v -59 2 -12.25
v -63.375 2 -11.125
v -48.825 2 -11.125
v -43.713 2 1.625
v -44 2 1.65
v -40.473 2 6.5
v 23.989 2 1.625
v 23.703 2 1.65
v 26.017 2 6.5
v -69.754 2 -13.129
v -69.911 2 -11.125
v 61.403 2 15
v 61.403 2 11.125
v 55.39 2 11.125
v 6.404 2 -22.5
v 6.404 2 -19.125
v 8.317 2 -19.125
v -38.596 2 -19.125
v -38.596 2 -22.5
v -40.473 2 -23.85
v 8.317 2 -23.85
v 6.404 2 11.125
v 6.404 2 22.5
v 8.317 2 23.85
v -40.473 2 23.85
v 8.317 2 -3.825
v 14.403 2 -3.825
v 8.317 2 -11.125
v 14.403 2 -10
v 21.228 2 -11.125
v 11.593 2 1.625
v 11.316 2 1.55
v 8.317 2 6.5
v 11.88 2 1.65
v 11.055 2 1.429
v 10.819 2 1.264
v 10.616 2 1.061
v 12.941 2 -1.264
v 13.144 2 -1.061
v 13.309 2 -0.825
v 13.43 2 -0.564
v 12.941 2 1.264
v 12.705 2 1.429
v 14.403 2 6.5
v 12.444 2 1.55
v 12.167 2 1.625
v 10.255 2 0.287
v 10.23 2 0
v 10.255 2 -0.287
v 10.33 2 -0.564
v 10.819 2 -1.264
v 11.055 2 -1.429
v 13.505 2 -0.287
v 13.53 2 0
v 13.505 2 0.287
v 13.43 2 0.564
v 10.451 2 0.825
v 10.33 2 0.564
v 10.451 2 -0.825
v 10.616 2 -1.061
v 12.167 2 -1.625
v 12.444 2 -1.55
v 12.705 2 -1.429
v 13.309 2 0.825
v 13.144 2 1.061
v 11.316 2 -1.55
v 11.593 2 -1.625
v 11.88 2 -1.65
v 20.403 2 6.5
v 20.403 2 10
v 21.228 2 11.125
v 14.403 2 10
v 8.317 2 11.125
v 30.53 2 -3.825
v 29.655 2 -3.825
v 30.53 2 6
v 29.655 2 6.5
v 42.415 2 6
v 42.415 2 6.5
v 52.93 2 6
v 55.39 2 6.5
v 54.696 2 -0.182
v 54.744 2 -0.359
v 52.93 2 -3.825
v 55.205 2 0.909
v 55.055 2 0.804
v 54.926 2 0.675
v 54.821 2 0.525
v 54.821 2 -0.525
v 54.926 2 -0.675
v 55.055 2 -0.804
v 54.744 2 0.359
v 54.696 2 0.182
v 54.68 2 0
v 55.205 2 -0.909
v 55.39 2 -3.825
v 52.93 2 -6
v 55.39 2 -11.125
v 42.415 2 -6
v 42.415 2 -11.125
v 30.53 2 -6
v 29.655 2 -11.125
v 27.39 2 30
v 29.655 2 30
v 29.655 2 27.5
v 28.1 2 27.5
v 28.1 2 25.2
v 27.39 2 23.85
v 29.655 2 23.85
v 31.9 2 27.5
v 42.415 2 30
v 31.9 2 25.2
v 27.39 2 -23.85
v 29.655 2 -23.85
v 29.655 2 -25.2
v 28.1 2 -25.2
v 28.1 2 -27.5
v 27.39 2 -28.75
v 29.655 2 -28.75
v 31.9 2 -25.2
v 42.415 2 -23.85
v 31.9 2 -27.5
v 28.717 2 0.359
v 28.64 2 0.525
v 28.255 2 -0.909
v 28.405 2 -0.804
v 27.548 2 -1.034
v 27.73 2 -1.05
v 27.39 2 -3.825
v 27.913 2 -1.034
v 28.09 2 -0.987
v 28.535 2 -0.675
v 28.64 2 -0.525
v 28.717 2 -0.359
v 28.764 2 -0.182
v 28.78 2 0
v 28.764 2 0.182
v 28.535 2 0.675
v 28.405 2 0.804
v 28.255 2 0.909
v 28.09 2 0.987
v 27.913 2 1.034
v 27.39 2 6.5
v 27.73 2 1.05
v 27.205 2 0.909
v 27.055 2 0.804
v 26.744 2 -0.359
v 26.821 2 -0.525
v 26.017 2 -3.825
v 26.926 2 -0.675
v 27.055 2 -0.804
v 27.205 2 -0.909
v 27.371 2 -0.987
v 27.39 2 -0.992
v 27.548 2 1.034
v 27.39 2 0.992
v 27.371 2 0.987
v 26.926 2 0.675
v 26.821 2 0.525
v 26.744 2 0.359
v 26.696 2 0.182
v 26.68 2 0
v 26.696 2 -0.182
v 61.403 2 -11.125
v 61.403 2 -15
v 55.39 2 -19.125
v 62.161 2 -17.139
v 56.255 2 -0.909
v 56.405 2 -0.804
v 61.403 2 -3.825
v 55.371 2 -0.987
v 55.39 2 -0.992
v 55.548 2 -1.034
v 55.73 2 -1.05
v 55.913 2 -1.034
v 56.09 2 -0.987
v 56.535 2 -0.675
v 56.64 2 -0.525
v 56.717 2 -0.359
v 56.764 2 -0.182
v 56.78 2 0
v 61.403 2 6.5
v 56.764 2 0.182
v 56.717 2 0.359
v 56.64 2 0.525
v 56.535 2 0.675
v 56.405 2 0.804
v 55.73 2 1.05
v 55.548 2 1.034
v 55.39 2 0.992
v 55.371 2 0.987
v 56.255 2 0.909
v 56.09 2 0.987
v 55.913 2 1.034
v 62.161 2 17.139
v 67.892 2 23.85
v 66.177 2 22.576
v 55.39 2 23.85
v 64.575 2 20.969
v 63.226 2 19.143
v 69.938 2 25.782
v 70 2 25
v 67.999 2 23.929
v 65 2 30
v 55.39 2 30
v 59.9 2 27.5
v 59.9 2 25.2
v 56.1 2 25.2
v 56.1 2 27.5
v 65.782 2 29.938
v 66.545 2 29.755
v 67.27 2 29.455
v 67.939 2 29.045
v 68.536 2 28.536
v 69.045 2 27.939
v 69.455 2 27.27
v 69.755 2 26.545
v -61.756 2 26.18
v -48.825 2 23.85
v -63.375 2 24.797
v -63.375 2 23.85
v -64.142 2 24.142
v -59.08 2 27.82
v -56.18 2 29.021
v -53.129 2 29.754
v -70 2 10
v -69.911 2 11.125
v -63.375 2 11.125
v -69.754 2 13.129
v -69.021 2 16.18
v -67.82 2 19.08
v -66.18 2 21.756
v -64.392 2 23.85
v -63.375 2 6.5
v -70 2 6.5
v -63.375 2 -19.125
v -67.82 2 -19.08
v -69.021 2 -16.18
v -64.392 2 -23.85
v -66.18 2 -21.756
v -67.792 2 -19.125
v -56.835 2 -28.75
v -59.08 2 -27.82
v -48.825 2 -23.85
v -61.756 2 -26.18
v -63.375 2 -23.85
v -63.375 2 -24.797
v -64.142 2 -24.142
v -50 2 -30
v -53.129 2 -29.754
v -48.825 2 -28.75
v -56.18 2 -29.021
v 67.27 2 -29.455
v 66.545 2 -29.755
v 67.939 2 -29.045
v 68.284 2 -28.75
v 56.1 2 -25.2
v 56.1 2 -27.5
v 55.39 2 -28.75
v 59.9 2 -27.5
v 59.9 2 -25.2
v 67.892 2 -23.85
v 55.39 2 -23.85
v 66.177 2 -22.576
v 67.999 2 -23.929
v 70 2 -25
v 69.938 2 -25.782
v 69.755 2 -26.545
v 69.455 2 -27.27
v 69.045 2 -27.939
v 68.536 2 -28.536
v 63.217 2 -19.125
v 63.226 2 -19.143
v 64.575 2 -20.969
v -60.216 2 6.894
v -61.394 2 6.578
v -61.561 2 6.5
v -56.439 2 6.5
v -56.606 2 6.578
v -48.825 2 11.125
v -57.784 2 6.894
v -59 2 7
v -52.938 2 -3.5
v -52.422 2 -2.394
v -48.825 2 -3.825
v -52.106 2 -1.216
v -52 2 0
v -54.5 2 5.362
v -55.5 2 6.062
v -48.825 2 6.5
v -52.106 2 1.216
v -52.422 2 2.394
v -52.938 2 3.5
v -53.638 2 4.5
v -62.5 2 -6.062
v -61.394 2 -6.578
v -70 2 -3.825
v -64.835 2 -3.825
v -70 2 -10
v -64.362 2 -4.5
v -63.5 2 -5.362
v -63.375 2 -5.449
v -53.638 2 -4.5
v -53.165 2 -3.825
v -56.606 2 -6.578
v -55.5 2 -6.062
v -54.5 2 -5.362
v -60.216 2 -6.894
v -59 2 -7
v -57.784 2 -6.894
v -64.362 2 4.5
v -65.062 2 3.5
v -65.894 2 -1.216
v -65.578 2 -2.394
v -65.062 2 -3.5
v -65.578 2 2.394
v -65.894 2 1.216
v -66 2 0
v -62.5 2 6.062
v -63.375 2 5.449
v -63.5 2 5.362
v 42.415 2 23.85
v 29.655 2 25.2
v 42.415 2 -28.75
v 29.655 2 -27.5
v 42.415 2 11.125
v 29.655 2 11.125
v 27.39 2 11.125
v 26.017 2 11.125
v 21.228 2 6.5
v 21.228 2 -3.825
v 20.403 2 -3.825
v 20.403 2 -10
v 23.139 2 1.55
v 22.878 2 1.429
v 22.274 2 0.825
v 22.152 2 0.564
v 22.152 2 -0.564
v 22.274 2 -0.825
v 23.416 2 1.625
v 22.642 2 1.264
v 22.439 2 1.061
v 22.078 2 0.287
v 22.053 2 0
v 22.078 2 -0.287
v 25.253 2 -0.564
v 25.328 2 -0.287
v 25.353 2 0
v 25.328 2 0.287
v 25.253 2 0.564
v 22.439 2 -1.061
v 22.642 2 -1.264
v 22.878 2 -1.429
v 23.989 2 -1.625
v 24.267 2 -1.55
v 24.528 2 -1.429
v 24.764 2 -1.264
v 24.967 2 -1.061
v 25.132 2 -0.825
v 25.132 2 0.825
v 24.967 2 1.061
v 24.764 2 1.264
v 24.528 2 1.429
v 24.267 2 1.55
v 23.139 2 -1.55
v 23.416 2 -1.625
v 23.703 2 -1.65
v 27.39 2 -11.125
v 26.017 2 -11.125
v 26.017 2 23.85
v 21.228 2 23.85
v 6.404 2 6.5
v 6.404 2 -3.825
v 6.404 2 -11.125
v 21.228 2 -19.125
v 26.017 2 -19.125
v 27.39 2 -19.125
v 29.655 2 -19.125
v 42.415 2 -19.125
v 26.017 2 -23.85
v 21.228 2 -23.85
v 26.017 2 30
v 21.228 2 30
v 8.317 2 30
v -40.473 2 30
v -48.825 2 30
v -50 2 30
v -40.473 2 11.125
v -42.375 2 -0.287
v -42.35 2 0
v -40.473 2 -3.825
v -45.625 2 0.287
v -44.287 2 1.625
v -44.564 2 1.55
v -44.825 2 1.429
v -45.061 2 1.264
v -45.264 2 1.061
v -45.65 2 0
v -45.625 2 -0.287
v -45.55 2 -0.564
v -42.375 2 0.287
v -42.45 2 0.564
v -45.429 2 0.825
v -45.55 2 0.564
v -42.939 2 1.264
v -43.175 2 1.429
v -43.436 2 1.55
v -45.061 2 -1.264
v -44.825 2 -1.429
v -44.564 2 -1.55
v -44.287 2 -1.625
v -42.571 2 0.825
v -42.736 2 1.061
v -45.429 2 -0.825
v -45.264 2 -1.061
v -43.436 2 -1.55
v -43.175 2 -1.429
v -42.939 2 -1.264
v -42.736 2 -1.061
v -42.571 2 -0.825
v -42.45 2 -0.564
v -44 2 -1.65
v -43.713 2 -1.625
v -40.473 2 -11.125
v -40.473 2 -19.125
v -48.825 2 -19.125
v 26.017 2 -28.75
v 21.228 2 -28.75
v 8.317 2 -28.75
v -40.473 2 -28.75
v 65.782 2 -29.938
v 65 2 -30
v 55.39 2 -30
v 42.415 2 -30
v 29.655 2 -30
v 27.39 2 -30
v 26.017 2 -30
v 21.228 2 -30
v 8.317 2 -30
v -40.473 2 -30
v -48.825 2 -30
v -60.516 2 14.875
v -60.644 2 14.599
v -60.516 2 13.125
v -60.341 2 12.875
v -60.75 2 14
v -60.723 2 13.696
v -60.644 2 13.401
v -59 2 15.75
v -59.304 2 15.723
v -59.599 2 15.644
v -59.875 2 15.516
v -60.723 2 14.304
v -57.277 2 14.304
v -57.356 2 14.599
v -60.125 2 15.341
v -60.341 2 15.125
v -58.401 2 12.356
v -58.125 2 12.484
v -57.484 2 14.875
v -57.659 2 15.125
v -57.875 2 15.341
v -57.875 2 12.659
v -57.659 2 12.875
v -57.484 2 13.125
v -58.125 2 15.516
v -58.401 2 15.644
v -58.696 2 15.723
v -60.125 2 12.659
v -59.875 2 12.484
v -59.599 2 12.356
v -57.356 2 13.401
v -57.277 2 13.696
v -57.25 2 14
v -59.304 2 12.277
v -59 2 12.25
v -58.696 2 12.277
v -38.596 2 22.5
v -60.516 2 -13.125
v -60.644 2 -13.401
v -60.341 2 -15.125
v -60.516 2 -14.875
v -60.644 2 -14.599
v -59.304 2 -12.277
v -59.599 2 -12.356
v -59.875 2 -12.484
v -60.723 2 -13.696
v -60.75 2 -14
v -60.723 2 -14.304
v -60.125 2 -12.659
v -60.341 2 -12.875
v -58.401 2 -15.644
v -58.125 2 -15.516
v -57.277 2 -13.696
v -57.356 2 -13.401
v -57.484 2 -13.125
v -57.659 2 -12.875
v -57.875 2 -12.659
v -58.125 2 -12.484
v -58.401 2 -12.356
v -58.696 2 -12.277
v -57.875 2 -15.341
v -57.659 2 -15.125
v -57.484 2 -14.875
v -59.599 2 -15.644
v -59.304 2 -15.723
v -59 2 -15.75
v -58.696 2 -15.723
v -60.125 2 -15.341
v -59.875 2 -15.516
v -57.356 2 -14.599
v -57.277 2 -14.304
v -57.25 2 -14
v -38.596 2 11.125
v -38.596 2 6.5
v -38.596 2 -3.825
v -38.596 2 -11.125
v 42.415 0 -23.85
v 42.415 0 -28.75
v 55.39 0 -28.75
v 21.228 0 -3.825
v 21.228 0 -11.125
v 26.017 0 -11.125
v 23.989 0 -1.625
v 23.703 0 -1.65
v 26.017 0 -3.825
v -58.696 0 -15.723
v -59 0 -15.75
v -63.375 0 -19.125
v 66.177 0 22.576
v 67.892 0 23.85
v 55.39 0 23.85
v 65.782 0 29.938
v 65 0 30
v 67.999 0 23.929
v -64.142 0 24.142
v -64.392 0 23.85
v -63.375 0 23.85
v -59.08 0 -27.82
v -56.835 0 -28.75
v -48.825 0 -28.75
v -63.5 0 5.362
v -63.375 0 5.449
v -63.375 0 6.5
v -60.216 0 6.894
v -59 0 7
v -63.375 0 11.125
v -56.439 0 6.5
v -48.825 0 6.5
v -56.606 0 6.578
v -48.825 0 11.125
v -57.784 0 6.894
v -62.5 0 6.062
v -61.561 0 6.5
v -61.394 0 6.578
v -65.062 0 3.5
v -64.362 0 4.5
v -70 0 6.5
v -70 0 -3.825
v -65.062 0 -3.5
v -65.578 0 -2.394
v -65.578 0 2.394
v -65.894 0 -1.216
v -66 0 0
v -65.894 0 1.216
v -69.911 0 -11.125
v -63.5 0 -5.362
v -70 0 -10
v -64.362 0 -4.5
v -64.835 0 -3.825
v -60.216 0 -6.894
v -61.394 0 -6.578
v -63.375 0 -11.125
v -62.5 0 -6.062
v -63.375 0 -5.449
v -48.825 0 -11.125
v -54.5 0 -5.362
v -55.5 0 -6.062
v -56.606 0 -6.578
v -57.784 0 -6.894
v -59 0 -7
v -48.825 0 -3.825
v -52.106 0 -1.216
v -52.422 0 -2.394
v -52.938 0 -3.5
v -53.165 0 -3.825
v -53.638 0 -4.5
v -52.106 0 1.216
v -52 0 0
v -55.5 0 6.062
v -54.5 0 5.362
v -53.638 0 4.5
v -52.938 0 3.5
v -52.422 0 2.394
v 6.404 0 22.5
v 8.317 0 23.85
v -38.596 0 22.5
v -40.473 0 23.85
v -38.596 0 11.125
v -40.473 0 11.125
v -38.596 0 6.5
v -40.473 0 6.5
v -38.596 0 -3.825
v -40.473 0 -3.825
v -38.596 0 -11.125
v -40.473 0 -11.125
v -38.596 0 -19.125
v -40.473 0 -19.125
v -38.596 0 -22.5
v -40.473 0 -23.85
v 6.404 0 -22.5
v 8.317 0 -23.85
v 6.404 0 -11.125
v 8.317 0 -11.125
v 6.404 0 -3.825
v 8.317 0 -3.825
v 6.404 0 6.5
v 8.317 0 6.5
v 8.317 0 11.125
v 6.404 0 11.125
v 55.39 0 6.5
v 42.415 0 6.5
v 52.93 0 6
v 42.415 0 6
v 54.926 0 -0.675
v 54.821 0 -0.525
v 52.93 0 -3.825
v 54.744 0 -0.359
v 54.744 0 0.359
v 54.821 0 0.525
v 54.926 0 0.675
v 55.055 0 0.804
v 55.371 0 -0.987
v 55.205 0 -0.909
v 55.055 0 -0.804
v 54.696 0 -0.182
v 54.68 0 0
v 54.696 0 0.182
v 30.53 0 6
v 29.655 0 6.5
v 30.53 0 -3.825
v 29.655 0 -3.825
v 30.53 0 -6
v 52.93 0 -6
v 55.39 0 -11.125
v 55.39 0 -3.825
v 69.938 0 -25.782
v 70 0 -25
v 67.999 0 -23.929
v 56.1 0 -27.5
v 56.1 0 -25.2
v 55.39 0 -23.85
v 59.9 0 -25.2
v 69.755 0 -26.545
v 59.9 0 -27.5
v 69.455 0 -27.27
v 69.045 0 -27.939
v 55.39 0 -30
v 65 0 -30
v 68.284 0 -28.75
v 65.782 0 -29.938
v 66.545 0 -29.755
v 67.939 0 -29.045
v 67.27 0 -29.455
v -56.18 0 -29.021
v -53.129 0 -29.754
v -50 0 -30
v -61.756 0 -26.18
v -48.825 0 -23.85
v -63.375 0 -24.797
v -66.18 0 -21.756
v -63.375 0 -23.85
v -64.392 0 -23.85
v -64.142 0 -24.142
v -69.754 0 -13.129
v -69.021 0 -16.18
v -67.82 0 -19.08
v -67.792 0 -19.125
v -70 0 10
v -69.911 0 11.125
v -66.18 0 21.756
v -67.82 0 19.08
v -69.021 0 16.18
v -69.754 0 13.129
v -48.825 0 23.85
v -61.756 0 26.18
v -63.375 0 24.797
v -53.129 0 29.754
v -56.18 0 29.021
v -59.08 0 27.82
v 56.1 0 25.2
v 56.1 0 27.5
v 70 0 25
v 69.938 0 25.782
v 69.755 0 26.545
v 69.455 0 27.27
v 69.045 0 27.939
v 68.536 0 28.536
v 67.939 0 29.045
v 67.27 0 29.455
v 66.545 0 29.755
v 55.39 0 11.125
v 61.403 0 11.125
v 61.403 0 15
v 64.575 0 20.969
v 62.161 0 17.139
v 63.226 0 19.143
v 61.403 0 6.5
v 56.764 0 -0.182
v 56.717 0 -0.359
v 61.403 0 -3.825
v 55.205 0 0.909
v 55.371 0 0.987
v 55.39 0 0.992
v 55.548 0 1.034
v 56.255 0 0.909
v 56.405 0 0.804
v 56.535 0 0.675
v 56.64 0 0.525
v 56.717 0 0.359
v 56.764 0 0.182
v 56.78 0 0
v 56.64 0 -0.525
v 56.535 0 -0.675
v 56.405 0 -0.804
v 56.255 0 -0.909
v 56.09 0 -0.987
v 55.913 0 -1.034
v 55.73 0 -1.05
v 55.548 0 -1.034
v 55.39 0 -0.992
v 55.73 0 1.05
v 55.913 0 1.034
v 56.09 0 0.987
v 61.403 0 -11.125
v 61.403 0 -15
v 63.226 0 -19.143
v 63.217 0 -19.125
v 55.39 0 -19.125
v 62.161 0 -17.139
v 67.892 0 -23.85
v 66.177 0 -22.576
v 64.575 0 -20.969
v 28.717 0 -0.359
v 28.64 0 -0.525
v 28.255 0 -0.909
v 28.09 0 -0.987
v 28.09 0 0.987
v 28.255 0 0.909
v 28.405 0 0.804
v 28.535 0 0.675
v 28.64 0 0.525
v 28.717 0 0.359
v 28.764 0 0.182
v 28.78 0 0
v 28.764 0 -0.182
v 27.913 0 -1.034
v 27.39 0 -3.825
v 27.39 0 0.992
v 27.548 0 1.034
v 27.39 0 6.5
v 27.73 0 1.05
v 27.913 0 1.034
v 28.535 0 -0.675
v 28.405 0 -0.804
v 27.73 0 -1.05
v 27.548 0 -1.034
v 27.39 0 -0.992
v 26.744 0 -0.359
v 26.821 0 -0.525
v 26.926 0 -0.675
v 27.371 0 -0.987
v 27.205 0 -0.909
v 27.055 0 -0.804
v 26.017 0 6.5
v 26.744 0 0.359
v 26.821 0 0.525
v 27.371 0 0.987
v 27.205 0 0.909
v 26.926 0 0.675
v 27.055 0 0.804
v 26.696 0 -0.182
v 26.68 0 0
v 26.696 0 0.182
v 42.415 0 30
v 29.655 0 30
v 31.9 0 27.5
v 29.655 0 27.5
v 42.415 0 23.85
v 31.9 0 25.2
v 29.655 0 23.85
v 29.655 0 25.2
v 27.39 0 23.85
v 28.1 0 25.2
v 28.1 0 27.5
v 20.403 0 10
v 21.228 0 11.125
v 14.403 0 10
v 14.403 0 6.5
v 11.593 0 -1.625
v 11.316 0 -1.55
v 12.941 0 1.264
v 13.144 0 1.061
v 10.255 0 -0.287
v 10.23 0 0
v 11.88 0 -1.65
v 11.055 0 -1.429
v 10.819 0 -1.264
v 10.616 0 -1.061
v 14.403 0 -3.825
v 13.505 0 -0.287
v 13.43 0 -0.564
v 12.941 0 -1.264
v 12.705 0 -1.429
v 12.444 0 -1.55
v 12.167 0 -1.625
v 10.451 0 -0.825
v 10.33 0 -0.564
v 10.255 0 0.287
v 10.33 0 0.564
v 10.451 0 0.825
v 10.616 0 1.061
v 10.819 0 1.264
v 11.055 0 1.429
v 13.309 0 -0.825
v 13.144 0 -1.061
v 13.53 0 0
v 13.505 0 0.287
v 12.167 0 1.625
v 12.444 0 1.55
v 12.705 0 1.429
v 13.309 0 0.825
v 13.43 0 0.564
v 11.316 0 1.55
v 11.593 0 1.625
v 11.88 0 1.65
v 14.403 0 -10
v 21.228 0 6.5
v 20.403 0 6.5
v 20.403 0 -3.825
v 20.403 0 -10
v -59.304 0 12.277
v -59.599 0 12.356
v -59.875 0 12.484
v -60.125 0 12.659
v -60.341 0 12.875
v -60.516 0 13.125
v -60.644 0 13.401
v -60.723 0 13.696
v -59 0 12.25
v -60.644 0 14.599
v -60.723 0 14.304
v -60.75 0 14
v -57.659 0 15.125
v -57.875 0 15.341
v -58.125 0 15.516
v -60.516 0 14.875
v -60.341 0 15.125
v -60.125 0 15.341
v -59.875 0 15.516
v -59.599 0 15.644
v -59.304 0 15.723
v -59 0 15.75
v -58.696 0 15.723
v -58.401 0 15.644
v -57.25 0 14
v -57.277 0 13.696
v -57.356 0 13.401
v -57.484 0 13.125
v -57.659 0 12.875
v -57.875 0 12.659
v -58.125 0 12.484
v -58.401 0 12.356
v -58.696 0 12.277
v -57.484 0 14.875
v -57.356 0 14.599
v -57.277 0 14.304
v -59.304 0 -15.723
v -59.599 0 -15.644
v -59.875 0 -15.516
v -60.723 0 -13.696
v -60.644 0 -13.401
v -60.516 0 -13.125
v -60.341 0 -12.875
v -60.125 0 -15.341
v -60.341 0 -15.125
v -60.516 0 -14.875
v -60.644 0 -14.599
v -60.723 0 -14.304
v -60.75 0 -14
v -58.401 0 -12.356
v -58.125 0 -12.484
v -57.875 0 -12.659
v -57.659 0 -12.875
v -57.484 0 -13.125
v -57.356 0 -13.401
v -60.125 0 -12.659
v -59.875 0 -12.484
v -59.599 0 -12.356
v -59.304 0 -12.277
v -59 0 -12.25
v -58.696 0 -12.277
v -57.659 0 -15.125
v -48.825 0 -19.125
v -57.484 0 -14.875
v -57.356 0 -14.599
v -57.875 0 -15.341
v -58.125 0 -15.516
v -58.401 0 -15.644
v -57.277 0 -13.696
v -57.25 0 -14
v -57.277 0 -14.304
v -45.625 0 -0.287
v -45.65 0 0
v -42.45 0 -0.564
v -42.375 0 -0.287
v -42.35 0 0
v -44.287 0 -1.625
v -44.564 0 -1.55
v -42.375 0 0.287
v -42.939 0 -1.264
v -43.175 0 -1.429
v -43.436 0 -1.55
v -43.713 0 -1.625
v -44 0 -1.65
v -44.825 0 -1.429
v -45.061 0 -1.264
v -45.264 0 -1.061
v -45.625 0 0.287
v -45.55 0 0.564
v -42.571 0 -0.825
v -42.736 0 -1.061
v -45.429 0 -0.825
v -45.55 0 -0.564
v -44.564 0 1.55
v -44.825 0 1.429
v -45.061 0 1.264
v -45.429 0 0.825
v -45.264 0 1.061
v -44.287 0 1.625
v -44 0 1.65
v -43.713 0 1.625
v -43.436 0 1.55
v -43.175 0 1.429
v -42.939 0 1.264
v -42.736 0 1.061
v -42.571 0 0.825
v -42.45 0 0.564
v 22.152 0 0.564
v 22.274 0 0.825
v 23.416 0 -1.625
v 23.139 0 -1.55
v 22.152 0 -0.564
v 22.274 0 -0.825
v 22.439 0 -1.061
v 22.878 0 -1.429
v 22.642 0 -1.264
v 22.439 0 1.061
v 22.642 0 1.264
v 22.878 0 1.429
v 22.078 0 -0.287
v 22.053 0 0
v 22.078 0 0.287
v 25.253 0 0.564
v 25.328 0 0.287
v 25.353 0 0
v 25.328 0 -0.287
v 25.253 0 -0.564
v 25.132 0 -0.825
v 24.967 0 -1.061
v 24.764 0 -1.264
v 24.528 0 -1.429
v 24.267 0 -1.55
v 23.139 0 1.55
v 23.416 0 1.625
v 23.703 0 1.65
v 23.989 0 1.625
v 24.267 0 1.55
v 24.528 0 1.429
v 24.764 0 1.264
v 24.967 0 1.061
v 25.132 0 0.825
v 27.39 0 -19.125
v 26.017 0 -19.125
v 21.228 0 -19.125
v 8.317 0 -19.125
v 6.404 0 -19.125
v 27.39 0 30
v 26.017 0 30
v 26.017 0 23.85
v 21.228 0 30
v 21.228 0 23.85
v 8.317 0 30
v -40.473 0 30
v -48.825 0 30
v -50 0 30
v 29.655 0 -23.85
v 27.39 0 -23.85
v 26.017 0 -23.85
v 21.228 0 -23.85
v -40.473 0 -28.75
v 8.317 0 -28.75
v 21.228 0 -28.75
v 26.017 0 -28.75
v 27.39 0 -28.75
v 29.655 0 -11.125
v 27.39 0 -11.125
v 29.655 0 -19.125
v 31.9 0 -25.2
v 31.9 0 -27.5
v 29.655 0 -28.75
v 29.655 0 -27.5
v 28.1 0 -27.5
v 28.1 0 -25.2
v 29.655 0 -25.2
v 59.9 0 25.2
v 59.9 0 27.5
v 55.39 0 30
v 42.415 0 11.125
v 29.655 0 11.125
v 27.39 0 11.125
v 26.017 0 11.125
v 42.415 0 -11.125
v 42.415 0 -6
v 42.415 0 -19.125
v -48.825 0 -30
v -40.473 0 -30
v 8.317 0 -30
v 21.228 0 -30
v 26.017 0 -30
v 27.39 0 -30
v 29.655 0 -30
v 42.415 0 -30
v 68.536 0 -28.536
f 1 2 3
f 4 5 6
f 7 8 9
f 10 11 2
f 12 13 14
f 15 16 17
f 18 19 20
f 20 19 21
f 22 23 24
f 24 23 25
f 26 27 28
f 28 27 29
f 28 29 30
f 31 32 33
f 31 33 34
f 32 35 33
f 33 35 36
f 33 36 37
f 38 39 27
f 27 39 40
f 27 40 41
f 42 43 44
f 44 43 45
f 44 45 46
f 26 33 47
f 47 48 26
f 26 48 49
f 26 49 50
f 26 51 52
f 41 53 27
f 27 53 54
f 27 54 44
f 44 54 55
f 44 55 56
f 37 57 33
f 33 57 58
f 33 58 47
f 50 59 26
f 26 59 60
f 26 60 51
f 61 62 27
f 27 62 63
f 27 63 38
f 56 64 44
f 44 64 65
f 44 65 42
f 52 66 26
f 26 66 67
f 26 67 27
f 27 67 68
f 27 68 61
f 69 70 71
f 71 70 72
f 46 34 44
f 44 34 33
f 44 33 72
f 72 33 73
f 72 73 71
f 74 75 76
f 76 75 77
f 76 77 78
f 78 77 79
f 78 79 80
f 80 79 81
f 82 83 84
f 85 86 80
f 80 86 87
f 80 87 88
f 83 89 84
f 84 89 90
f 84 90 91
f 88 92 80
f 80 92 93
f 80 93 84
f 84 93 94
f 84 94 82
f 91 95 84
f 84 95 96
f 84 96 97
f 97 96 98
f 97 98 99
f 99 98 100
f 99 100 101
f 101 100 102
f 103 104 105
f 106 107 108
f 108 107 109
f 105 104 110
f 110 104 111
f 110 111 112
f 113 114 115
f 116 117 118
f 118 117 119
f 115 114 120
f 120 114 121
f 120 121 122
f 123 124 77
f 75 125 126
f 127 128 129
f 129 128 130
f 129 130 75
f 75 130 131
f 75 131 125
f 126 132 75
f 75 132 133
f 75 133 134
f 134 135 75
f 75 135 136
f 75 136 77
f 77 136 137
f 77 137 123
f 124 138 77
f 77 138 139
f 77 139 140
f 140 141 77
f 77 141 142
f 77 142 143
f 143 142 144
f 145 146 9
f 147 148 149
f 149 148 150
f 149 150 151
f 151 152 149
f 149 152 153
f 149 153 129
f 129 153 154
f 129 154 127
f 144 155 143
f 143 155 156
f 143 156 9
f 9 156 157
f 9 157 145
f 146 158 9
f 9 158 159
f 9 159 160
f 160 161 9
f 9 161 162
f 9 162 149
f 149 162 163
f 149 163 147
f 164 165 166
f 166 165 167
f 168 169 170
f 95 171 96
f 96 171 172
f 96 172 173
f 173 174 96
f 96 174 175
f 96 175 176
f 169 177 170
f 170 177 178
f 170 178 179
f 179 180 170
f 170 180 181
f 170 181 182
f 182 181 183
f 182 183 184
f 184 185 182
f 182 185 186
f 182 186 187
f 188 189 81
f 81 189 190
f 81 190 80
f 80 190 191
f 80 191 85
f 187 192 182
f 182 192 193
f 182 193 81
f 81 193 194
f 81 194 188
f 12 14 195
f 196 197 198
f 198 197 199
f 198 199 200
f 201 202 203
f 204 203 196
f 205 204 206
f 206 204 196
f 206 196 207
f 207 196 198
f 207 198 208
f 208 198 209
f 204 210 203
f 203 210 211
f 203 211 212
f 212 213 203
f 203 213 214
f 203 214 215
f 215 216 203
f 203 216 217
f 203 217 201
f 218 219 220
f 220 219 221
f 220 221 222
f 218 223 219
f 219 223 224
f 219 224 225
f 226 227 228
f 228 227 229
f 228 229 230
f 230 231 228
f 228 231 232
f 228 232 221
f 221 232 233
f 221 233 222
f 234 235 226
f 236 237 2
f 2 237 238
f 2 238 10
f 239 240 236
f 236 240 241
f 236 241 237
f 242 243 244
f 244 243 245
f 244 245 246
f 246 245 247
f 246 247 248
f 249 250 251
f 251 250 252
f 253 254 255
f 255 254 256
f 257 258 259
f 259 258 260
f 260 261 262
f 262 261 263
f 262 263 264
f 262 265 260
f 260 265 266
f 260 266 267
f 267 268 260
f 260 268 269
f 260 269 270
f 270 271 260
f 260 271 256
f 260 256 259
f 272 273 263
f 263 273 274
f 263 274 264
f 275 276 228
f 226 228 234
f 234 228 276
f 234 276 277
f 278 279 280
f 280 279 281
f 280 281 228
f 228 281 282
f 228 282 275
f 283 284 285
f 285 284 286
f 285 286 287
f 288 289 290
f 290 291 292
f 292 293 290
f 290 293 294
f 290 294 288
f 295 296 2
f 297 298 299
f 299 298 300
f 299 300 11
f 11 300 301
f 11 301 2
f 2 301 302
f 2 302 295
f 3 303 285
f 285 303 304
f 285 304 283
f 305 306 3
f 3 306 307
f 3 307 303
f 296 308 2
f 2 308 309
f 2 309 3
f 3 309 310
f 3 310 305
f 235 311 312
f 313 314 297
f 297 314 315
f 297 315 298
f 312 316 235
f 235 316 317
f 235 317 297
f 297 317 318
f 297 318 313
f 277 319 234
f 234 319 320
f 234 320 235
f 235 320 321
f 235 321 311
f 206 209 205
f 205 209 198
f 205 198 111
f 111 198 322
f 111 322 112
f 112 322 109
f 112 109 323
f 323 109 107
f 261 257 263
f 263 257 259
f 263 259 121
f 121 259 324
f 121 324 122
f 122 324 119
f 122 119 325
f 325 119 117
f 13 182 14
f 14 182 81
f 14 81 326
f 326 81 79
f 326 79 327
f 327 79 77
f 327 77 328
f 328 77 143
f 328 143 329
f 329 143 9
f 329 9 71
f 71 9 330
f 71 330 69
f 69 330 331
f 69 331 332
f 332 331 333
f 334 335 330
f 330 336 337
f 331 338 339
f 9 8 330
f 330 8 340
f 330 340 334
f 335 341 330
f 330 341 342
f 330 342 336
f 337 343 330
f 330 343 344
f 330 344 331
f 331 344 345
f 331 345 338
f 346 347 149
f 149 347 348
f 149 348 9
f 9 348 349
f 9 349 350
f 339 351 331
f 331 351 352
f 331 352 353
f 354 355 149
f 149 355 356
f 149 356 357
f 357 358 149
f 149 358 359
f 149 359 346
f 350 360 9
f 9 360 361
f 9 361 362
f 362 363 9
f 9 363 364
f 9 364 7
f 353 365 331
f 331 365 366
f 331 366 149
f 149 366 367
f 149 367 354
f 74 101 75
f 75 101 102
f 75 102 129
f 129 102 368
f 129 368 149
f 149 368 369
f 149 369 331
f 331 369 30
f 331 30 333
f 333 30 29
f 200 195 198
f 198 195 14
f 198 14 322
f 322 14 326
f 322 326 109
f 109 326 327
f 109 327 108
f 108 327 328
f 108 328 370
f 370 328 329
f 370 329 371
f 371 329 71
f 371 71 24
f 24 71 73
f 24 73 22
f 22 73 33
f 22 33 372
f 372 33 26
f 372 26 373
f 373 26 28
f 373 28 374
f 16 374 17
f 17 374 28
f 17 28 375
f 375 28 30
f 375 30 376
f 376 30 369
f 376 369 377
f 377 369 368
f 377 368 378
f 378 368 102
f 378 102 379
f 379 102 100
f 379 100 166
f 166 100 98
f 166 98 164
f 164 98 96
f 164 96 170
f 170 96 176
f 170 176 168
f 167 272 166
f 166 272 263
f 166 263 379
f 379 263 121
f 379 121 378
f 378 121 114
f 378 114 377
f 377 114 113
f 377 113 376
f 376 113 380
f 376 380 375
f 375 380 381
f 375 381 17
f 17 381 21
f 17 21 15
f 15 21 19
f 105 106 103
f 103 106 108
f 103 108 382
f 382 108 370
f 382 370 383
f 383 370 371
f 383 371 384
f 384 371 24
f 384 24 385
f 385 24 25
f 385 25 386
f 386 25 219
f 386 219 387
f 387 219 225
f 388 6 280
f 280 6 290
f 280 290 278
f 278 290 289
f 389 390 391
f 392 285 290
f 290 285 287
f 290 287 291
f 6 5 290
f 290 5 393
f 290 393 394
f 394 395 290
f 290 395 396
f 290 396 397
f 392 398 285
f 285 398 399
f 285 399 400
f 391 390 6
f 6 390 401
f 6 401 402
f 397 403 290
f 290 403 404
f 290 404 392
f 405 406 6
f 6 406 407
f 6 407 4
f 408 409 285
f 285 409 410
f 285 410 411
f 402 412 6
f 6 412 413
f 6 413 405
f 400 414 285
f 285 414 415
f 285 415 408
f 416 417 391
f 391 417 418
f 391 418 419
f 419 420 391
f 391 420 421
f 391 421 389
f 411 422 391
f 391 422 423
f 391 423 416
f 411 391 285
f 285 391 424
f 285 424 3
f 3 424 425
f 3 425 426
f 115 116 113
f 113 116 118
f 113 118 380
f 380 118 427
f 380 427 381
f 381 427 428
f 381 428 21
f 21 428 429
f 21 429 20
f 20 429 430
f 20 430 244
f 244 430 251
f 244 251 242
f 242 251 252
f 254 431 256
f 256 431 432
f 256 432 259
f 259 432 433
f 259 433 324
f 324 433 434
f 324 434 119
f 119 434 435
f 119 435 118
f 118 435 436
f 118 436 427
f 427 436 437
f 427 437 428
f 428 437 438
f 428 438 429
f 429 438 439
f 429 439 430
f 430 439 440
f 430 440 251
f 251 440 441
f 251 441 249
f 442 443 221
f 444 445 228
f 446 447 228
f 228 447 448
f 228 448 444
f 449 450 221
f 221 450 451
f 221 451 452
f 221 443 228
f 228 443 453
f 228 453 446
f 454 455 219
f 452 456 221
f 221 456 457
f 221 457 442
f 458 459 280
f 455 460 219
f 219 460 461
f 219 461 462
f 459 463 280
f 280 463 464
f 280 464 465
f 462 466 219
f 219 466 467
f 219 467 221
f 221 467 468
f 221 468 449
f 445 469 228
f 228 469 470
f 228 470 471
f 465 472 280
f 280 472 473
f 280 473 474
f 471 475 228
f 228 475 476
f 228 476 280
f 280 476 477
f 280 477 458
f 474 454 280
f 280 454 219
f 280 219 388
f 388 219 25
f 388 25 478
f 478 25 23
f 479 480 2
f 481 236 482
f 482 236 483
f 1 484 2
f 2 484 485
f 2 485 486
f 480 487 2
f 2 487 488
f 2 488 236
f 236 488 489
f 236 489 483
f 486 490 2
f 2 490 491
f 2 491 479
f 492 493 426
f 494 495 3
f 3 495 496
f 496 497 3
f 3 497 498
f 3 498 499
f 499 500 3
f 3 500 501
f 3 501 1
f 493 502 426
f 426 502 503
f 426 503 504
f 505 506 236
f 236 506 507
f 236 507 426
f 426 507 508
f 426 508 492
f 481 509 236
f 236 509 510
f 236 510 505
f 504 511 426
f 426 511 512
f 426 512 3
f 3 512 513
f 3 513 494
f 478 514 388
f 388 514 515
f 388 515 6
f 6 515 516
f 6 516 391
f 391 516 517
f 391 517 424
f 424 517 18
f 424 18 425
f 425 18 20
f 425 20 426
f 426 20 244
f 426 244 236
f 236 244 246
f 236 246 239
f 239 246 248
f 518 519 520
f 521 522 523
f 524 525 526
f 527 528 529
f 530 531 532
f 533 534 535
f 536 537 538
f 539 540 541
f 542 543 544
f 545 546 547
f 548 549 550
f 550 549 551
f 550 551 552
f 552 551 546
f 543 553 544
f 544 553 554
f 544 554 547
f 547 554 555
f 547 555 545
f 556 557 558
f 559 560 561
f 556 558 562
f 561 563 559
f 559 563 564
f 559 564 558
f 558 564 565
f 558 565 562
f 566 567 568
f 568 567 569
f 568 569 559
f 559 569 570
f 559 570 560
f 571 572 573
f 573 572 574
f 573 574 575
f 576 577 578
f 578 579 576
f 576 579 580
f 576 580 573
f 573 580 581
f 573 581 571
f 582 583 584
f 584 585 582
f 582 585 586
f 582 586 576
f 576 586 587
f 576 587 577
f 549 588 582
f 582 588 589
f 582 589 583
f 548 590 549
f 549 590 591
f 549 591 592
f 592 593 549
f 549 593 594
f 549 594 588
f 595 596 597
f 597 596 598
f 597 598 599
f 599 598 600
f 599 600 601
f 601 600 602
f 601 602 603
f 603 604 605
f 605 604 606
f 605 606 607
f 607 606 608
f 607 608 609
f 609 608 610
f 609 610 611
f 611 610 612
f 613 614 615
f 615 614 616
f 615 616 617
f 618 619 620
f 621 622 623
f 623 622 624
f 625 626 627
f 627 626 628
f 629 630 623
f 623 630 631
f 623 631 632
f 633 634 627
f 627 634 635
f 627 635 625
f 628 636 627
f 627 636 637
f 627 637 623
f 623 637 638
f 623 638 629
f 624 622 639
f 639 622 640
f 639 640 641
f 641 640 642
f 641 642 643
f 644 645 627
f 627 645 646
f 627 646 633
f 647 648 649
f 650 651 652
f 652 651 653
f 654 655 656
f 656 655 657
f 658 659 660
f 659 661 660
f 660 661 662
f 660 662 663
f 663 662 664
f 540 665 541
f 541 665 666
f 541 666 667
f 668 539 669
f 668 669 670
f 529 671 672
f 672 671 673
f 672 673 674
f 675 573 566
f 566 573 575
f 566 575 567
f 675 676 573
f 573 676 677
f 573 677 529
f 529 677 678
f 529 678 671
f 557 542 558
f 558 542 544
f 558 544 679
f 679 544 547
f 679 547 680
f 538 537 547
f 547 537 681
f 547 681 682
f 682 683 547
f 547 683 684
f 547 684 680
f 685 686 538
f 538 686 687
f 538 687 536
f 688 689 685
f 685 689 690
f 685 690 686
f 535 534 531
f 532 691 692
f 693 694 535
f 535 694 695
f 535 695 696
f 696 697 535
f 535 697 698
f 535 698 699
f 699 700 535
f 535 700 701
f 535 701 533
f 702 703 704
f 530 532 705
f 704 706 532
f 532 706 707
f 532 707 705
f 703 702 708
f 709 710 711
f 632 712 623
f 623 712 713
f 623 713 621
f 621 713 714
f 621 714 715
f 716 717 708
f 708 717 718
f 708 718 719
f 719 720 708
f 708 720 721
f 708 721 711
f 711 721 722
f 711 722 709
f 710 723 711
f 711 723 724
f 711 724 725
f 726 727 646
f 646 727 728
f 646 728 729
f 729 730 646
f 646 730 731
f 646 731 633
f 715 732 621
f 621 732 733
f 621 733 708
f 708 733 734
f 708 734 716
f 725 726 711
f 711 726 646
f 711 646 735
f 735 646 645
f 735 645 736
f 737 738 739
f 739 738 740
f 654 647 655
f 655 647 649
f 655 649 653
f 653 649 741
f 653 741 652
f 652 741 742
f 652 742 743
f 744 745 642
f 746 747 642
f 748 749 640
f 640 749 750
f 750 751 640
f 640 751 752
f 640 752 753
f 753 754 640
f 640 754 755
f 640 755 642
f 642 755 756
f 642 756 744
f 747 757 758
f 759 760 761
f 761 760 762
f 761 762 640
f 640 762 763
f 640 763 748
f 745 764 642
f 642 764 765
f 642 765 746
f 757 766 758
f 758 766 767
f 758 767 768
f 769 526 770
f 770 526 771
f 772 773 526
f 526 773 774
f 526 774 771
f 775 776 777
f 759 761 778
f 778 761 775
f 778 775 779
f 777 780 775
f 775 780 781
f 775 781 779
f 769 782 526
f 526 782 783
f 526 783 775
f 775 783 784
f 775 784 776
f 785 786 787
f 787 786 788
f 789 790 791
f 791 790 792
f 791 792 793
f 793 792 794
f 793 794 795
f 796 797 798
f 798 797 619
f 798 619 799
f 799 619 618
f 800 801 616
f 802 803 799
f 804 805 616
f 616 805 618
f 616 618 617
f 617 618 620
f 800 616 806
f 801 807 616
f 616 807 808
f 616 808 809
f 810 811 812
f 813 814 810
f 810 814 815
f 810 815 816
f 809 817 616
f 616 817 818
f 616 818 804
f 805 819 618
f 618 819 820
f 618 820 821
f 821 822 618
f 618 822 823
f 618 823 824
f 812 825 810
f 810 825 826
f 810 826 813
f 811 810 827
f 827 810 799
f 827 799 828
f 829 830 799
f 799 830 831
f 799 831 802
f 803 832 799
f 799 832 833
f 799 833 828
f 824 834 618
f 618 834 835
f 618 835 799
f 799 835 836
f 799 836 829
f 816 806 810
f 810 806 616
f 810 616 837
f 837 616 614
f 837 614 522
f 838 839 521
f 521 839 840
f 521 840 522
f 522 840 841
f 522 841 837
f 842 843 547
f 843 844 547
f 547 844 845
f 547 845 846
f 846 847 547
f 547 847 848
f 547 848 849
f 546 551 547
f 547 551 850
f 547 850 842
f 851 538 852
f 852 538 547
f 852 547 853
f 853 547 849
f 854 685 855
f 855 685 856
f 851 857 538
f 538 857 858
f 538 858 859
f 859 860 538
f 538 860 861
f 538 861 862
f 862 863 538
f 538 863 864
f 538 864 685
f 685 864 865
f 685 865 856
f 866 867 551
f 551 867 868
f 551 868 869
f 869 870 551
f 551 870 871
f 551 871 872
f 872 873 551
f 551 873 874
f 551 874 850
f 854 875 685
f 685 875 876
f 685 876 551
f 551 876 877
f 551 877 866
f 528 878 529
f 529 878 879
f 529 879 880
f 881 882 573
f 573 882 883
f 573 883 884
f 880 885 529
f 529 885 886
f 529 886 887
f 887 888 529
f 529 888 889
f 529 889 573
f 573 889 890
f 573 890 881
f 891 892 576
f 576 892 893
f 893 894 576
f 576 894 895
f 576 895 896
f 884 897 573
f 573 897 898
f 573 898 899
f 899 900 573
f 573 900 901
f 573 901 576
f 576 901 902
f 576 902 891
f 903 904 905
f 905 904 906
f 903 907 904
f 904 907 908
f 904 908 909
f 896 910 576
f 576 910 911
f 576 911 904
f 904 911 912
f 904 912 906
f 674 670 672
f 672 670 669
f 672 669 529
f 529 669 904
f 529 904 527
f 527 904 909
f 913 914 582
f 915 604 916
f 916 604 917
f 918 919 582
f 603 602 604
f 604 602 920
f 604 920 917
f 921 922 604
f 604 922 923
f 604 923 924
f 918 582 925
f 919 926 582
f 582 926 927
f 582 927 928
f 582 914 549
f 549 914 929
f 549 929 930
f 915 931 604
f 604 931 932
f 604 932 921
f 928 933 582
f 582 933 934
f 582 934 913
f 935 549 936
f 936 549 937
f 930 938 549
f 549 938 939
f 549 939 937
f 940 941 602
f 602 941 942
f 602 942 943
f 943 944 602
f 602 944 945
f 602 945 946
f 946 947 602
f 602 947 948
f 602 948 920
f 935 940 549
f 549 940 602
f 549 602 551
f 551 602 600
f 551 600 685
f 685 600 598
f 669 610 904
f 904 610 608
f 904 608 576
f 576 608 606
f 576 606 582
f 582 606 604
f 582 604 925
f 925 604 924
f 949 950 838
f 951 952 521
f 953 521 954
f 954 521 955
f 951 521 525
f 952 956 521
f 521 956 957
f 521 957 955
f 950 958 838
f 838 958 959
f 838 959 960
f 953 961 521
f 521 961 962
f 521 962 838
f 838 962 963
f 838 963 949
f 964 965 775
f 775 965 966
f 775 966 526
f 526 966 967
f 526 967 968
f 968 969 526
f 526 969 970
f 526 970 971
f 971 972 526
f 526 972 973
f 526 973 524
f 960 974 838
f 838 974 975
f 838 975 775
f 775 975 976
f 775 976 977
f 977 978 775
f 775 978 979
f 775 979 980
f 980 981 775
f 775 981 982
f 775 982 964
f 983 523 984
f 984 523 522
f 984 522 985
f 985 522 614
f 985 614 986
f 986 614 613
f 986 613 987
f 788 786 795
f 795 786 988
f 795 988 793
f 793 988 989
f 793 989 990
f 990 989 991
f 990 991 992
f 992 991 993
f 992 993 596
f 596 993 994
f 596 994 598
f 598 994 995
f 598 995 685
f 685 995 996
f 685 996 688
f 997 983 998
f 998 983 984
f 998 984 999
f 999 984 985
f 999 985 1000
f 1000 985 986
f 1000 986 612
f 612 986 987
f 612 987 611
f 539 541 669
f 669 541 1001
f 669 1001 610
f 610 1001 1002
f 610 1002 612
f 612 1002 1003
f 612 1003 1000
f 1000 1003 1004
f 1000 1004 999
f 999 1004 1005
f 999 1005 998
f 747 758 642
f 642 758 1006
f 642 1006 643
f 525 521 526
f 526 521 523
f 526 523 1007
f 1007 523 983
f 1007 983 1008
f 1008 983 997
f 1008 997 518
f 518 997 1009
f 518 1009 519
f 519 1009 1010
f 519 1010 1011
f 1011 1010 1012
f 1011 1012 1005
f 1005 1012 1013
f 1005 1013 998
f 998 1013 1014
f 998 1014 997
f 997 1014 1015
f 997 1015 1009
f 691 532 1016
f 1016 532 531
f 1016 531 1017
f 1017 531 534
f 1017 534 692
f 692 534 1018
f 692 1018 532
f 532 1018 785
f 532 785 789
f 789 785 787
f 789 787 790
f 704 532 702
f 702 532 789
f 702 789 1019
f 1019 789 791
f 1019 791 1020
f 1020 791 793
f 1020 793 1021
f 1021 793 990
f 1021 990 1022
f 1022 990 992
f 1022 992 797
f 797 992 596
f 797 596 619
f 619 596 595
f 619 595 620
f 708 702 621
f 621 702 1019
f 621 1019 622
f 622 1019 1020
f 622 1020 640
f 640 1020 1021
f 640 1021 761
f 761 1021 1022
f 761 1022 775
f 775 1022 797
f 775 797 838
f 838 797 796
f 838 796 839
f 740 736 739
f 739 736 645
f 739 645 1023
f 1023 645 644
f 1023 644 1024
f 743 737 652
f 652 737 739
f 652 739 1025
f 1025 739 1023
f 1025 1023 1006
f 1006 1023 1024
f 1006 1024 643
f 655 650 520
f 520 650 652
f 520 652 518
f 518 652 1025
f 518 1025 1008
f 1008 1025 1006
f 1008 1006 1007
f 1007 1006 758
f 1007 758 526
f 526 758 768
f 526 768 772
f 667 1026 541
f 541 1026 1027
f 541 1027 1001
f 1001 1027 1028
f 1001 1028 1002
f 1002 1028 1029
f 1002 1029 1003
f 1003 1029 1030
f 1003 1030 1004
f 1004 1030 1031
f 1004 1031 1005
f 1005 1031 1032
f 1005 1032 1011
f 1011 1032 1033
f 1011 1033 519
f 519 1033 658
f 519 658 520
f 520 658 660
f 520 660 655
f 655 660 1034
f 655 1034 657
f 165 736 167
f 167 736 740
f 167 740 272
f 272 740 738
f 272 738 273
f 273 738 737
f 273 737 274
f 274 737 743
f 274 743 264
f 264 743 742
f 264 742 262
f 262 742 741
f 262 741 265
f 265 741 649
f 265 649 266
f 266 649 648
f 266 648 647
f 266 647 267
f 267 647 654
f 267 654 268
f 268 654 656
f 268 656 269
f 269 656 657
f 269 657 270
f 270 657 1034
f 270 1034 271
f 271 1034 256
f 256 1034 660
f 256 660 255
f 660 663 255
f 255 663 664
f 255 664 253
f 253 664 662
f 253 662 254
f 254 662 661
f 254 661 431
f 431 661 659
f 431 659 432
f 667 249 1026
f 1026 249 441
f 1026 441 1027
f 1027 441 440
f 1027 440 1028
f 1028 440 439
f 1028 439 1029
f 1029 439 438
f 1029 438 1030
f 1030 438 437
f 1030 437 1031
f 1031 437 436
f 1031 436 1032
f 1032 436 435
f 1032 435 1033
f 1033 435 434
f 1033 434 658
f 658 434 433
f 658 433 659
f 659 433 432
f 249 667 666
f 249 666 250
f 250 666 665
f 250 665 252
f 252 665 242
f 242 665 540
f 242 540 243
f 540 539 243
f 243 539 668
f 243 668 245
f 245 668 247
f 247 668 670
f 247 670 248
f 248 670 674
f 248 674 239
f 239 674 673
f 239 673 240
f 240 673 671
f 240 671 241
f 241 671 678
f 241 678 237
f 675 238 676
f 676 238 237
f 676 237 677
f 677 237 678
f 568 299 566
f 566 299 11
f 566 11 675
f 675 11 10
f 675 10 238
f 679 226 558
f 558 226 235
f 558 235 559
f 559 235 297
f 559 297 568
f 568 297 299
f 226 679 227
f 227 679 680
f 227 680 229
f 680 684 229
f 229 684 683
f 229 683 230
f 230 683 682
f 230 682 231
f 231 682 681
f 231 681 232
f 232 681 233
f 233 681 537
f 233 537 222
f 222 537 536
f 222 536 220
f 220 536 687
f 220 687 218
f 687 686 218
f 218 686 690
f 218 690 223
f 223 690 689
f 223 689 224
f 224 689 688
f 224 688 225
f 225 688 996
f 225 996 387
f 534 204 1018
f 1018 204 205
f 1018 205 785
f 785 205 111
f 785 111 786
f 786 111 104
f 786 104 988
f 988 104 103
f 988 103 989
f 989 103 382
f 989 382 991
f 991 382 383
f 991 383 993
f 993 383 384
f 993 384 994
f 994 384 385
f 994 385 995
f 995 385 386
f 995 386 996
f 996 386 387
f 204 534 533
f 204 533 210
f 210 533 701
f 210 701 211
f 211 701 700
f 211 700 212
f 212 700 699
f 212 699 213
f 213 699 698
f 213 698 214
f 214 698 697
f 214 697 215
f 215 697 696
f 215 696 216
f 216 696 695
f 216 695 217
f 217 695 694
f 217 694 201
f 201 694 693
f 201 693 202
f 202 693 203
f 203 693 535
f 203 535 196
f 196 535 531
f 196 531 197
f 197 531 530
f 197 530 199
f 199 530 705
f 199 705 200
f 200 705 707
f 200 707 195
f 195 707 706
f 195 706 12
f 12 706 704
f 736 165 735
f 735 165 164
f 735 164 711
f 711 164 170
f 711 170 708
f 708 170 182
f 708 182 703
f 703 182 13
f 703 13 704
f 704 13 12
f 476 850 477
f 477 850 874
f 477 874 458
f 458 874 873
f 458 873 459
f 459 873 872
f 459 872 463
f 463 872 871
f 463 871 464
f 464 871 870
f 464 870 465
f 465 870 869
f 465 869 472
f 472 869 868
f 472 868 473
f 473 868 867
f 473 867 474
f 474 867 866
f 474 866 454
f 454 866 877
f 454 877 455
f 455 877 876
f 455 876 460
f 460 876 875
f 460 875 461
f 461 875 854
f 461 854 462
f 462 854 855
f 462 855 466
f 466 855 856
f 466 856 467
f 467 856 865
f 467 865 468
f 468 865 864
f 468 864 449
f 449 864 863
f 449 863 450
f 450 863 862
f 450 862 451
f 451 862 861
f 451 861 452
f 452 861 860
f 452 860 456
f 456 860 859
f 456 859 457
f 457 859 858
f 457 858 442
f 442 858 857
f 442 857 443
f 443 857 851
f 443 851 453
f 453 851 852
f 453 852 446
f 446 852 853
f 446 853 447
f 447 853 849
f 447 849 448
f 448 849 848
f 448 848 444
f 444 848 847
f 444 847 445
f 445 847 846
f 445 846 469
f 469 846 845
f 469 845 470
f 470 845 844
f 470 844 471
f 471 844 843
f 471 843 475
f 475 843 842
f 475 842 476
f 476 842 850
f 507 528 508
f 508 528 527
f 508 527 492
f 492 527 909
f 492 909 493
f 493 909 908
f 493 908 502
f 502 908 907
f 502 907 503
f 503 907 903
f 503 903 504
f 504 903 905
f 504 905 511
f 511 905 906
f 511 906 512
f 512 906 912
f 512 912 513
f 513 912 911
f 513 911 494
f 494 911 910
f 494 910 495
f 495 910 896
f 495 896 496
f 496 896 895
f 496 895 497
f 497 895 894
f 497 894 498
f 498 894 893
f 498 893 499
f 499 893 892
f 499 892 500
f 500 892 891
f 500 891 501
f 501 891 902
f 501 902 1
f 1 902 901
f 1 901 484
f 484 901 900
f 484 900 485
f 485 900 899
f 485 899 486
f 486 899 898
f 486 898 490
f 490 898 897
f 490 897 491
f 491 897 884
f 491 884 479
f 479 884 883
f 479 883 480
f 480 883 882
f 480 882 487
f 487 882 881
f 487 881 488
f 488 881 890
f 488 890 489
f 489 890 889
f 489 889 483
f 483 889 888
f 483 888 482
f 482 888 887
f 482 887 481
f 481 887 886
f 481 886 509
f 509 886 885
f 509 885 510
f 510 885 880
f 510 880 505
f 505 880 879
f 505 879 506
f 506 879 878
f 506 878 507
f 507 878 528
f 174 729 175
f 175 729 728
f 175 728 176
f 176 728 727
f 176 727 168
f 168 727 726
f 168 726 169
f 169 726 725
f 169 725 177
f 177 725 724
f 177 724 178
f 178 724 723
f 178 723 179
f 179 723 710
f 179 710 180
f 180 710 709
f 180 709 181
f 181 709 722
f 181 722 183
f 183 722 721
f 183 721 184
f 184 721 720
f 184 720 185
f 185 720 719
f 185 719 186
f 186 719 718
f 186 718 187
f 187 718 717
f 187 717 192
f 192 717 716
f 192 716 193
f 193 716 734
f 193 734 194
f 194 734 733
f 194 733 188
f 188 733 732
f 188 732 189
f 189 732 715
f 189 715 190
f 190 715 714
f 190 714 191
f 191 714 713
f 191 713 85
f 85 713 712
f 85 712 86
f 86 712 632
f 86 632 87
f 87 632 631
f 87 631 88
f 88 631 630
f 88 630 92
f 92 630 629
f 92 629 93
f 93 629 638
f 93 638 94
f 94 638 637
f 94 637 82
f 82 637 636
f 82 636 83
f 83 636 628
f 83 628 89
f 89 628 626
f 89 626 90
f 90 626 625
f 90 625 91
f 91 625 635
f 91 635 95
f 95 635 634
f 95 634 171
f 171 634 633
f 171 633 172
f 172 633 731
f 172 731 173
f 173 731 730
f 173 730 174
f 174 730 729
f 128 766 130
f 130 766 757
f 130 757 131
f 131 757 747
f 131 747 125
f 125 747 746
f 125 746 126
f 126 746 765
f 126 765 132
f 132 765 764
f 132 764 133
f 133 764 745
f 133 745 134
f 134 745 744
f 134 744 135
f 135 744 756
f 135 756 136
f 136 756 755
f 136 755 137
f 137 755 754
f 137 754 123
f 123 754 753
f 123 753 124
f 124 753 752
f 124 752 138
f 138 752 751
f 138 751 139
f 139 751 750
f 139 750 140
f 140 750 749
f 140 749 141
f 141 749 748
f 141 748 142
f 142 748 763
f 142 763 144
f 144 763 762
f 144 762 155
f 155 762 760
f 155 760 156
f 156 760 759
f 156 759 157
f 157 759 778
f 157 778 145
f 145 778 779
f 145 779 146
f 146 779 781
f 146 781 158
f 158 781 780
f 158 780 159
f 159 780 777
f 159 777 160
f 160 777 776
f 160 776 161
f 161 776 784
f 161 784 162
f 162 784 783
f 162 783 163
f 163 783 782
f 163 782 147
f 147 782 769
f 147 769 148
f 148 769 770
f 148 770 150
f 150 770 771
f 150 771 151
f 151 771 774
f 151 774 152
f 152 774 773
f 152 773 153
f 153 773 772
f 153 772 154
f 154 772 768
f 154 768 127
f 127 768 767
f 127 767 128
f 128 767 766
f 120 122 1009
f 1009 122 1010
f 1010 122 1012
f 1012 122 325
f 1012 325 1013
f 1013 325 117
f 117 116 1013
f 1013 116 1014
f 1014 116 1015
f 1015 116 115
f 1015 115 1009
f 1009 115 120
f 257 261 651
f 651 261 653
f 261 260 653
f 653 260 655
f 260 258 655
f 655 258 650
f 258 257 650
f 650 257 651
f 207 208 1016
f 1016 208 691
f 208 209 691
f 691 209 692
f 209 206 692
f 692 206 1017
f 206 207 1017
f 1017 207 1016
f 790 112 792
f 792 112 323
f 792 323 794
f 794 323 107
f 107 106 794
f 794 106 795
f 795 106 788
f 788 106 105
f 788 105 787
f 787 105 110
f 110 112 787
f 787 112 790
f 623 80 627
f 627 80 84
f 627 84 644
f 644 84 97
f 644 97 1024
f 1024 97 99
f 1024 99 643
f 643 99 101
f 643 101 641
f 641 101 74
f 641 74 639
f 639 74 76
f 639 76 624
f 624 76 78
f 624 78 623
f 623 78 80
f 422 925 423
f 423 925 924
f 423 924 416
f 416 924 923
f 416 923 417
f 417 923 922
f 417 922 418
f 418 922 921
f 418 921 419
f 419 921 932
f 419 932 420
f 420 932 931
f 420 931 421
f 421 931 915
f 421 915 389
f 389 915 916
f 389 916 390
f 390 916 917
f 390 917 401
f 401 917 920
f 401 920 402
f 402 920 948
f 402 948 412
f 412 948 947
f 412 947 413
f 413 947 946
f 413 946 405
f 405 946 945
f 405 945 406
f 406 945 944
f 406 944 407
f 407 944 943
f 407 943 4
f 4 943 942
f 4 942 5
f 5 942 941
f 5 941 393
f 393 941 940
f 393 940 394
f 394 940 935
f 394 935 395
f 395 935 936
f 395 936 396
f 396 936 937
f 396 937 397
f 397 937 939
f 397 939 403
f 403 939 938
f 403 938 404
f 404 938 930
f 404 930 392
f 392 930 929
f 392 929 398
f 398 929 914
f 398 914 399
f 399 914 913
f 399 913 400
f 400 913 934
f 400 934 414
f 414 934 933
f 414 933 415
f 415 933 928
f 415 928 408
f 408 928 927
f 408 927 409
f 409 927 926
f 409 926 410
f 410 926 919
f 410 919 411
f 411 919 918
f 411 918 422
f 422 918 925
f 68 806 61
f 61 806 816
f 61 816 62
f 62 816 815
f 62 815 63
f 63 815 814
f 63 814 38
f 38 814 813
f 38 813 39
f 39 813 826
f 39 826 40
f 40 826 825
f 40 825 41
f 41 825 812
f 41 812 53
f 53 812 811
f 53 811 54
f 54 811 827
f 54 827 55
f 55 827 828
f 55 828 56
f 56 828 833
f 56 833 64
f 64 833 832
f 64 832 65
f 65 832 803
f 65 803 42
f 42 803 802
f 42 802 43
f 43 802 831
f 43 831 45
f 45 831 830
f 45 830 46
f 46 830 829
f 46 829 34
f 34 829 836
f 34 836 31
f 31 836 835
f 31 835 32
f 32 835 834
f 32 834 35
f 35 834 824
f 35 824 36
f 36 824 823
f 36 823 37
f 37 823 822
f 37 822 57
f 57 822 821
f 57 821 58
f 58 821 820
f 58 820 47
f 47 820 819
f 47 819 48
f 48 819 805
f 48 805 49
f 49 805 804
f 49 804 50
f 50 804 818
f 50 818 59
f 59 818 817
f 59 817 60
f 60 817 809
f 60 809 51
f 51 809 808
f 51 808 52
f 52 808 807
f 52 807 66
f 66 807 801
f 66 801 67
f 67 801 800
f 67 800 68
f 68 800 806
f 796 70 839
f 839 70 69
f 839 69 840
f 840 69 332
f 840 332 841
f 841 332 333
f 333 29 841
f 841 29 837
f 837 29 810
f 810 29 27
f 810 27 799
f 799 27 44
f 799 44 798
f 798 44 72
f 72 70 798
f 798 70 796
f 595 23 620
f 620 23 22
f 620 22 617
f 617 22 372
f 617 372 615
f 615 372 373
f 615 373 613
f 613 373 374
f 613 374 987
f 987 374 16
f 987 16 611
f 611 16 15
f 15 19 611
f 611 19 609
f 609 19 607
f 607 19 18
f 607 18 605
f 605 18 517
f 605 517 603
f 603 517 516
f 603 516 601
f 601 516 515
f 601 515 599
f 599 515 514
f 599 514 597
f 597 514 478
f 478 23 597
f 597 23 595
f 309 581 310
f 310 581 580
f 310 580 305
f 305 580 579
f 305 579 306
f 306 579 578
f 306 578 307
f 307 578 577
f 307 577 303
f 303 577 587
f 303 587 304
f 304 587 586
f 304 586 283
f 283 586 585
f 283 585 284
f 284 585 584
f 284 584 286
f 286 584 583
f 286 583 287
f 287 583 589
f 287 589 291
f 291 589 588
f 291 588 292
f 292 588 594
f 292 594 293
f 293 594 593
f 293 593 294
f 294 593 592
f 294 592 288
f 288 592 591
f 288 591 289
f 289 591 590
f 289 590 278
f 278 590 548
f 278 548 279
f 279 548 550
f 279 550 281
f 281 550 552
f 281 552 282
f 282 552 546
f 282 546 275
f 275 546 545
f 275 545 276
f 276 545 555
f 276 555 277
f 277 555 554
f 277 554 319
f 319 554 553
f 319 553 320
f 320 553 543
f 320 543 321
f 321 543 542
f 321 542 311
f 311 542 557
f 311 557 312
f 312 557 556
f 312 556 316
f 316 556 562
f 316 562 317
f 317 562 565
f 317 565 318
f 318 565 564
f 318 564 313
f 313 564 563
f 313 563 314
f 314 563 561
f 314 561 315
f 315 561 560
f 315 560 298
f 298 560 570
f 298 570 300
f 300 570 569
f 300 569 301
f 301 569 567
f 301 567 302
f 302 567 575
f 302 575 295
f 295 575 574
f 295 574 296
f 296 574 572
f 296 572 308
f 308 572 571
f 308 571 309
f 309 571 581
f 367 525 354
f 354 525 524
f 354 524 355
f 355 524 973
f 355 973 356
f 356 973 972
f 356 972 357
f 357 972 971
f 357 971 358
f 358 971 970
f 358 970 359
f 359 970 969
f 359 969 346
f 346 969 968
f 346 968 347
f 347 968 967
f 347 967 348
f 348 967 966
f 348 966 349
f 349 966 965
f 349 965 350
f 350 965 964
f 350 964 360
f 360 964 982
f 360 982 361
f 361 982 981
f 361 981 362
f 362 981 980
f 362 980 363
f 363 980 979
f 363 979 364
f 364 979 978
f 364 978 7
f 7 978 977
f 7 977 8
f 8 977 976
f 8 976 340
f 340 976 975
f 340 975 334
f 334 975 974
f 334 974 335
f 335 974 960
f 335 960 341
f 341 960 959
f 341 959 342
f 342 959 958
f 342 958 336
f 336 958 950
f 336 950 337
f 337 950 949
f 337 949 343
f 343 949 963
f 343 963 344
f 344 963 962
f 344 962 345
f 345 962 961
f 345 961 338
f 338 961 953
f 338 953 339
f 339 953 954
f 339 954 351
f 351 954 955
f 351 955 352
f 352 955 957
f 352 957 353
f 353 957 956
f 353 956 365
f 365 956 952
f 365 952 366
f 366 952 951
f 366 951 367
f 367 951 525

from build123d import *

# Parameters (mm, degrees)
CROQUIS1_R              = 1.75
CROQUIS1_R_2            = 1.05
CROQUIS1_R_3            = 1.65
CROQUIS1_R_4            = 7
CROQUIS1_W              = 22.4
CROQUIS1_H              = 12
CROQUIS1_W_2            = 3.8
CROQUIS1_H_2            = 2.3
CROQUIS1_W_3            = 6
CROQUIS1_H_3            = 20
CROQUIS1_W_4            = 45
CROQUIS1_H_4            = 45
SALIENTE_EXTRUIR1_DEPTH = 2


with BuildPart() as part:
    # Croquis1 → Saliente-Extruir1 (new body)
    with BuildSketch(Plane(origin=(0, 0, 0), x_dir=(1, 0, 0), z_dir=(0, 1, 0))):
        with BuildLine():
            Line((-50, -30), (65, -30))
            ThreePointArc((65, -30), (68.535533906, -28.535533906), (70, -25))
            ThreePointArc((70, -25), (64.574669497, -20.968704233), (61.402899266, -15))
            Line((61.402899266, -15), (61.402899266, 15))
            ThreePointArc((61.402899266, 15), (64.574669497, 20.968704233), (70, 25))
            ThreePointArc((70, 25), (68.535533906, 28.535533906), (65, 30))
            Line((65, 30), (-50, 30))
            ThreePointArc((-50, 30), (-64.142135624, 24.142135624), (-70, 10))
            Line((-70, 10), (-70, -10))
            ThreePointArc((-70, -10), (-64.142135624, -24.142135624), (-50, -30))
        make_face()
        with Locations(Location((-59, -14, 0), (0, 0, 270))):
            Circle(CROQUIS1_R, mode=Mode.SUBTRACT)
        with Locations(Location((-59, 14, 0), (0, 0, 90))):
            Circle(CROQUIS1_R, mode=Mode.SUBTRACT)
        with Locations(Location((55.730399266, 0, 0), (0, 0, 270))):
            Circle(CROQUIS1_R_2, mode=Mode.SUBTRACT)
        with Locations(Location((27.730399266, 0, 0), (0, 0, 270))):
            Circle(CROQUIS1_R_2, mode=Mode.SUBTRACT)
        with Locations(Location((-44, 0, 0), (0, 0, 270))):
            Circle(CROQUIS1_R_3, mode=Mode.SUBTRACT)
        with Locations(Location((11.88, 0, 0), (0, 0, 270))):
            Circle(CROQUIS1_R_3, mode=Mode.SUBTRACT)
        with Locations(Location((-59, 0, 0), (0, 0, 270))):
            Circle(CROQUIS1_R_4, mode=Mode.SUBTRACT)
        with Locations(Location((23.702899266, 0, 0), (0, 0, 270))):
            Circle(CROQUIS1_R_3, mode=Mode.SUBTRACT)
        with Locations((41.730399266, 0)):
            Rectangle(CROQUIS1_W, CROQUIS1_H, mode=Mode.SUBTRACT)
        with Locations((30, 26.35)):
            Rectangle(CROQUIS1_W_2, CROQUIS1_H_2, mode=Mode.SUBTRACT)
        with Locations((58, 26.35)):
            Rectangle(CROQUIS1_W_2, CROQUIS1_H_2, mode=Mode.SUBTRACT)
        with Locations((58, -26.35)):
            Rectangle(CROQUIS1_W_2, CROQUIS1_H_2, mode=Mode.SUBTRACT)
        with Locations((30, -26.35)):
            Rectangle(CROQUIS1_W_2, CROQUIS1_H_2, mode=Mode.SUBTRACT)
        with Locations((17.402899266, 0)):
            Rectangle(CROQUIS1_W_3, CROQUIS1_H_3, mode=Mode.SUBTRACT)
        with Locations((-16.095990361, 0)):
            Rectangle(CROQUIS1_W_4, CROQUIS1_H_4, mode=Mode.SUBTRACT)
    extrude(amount=SALIENTE_EXTRUIR1_DEPTH)


solid = part.part
